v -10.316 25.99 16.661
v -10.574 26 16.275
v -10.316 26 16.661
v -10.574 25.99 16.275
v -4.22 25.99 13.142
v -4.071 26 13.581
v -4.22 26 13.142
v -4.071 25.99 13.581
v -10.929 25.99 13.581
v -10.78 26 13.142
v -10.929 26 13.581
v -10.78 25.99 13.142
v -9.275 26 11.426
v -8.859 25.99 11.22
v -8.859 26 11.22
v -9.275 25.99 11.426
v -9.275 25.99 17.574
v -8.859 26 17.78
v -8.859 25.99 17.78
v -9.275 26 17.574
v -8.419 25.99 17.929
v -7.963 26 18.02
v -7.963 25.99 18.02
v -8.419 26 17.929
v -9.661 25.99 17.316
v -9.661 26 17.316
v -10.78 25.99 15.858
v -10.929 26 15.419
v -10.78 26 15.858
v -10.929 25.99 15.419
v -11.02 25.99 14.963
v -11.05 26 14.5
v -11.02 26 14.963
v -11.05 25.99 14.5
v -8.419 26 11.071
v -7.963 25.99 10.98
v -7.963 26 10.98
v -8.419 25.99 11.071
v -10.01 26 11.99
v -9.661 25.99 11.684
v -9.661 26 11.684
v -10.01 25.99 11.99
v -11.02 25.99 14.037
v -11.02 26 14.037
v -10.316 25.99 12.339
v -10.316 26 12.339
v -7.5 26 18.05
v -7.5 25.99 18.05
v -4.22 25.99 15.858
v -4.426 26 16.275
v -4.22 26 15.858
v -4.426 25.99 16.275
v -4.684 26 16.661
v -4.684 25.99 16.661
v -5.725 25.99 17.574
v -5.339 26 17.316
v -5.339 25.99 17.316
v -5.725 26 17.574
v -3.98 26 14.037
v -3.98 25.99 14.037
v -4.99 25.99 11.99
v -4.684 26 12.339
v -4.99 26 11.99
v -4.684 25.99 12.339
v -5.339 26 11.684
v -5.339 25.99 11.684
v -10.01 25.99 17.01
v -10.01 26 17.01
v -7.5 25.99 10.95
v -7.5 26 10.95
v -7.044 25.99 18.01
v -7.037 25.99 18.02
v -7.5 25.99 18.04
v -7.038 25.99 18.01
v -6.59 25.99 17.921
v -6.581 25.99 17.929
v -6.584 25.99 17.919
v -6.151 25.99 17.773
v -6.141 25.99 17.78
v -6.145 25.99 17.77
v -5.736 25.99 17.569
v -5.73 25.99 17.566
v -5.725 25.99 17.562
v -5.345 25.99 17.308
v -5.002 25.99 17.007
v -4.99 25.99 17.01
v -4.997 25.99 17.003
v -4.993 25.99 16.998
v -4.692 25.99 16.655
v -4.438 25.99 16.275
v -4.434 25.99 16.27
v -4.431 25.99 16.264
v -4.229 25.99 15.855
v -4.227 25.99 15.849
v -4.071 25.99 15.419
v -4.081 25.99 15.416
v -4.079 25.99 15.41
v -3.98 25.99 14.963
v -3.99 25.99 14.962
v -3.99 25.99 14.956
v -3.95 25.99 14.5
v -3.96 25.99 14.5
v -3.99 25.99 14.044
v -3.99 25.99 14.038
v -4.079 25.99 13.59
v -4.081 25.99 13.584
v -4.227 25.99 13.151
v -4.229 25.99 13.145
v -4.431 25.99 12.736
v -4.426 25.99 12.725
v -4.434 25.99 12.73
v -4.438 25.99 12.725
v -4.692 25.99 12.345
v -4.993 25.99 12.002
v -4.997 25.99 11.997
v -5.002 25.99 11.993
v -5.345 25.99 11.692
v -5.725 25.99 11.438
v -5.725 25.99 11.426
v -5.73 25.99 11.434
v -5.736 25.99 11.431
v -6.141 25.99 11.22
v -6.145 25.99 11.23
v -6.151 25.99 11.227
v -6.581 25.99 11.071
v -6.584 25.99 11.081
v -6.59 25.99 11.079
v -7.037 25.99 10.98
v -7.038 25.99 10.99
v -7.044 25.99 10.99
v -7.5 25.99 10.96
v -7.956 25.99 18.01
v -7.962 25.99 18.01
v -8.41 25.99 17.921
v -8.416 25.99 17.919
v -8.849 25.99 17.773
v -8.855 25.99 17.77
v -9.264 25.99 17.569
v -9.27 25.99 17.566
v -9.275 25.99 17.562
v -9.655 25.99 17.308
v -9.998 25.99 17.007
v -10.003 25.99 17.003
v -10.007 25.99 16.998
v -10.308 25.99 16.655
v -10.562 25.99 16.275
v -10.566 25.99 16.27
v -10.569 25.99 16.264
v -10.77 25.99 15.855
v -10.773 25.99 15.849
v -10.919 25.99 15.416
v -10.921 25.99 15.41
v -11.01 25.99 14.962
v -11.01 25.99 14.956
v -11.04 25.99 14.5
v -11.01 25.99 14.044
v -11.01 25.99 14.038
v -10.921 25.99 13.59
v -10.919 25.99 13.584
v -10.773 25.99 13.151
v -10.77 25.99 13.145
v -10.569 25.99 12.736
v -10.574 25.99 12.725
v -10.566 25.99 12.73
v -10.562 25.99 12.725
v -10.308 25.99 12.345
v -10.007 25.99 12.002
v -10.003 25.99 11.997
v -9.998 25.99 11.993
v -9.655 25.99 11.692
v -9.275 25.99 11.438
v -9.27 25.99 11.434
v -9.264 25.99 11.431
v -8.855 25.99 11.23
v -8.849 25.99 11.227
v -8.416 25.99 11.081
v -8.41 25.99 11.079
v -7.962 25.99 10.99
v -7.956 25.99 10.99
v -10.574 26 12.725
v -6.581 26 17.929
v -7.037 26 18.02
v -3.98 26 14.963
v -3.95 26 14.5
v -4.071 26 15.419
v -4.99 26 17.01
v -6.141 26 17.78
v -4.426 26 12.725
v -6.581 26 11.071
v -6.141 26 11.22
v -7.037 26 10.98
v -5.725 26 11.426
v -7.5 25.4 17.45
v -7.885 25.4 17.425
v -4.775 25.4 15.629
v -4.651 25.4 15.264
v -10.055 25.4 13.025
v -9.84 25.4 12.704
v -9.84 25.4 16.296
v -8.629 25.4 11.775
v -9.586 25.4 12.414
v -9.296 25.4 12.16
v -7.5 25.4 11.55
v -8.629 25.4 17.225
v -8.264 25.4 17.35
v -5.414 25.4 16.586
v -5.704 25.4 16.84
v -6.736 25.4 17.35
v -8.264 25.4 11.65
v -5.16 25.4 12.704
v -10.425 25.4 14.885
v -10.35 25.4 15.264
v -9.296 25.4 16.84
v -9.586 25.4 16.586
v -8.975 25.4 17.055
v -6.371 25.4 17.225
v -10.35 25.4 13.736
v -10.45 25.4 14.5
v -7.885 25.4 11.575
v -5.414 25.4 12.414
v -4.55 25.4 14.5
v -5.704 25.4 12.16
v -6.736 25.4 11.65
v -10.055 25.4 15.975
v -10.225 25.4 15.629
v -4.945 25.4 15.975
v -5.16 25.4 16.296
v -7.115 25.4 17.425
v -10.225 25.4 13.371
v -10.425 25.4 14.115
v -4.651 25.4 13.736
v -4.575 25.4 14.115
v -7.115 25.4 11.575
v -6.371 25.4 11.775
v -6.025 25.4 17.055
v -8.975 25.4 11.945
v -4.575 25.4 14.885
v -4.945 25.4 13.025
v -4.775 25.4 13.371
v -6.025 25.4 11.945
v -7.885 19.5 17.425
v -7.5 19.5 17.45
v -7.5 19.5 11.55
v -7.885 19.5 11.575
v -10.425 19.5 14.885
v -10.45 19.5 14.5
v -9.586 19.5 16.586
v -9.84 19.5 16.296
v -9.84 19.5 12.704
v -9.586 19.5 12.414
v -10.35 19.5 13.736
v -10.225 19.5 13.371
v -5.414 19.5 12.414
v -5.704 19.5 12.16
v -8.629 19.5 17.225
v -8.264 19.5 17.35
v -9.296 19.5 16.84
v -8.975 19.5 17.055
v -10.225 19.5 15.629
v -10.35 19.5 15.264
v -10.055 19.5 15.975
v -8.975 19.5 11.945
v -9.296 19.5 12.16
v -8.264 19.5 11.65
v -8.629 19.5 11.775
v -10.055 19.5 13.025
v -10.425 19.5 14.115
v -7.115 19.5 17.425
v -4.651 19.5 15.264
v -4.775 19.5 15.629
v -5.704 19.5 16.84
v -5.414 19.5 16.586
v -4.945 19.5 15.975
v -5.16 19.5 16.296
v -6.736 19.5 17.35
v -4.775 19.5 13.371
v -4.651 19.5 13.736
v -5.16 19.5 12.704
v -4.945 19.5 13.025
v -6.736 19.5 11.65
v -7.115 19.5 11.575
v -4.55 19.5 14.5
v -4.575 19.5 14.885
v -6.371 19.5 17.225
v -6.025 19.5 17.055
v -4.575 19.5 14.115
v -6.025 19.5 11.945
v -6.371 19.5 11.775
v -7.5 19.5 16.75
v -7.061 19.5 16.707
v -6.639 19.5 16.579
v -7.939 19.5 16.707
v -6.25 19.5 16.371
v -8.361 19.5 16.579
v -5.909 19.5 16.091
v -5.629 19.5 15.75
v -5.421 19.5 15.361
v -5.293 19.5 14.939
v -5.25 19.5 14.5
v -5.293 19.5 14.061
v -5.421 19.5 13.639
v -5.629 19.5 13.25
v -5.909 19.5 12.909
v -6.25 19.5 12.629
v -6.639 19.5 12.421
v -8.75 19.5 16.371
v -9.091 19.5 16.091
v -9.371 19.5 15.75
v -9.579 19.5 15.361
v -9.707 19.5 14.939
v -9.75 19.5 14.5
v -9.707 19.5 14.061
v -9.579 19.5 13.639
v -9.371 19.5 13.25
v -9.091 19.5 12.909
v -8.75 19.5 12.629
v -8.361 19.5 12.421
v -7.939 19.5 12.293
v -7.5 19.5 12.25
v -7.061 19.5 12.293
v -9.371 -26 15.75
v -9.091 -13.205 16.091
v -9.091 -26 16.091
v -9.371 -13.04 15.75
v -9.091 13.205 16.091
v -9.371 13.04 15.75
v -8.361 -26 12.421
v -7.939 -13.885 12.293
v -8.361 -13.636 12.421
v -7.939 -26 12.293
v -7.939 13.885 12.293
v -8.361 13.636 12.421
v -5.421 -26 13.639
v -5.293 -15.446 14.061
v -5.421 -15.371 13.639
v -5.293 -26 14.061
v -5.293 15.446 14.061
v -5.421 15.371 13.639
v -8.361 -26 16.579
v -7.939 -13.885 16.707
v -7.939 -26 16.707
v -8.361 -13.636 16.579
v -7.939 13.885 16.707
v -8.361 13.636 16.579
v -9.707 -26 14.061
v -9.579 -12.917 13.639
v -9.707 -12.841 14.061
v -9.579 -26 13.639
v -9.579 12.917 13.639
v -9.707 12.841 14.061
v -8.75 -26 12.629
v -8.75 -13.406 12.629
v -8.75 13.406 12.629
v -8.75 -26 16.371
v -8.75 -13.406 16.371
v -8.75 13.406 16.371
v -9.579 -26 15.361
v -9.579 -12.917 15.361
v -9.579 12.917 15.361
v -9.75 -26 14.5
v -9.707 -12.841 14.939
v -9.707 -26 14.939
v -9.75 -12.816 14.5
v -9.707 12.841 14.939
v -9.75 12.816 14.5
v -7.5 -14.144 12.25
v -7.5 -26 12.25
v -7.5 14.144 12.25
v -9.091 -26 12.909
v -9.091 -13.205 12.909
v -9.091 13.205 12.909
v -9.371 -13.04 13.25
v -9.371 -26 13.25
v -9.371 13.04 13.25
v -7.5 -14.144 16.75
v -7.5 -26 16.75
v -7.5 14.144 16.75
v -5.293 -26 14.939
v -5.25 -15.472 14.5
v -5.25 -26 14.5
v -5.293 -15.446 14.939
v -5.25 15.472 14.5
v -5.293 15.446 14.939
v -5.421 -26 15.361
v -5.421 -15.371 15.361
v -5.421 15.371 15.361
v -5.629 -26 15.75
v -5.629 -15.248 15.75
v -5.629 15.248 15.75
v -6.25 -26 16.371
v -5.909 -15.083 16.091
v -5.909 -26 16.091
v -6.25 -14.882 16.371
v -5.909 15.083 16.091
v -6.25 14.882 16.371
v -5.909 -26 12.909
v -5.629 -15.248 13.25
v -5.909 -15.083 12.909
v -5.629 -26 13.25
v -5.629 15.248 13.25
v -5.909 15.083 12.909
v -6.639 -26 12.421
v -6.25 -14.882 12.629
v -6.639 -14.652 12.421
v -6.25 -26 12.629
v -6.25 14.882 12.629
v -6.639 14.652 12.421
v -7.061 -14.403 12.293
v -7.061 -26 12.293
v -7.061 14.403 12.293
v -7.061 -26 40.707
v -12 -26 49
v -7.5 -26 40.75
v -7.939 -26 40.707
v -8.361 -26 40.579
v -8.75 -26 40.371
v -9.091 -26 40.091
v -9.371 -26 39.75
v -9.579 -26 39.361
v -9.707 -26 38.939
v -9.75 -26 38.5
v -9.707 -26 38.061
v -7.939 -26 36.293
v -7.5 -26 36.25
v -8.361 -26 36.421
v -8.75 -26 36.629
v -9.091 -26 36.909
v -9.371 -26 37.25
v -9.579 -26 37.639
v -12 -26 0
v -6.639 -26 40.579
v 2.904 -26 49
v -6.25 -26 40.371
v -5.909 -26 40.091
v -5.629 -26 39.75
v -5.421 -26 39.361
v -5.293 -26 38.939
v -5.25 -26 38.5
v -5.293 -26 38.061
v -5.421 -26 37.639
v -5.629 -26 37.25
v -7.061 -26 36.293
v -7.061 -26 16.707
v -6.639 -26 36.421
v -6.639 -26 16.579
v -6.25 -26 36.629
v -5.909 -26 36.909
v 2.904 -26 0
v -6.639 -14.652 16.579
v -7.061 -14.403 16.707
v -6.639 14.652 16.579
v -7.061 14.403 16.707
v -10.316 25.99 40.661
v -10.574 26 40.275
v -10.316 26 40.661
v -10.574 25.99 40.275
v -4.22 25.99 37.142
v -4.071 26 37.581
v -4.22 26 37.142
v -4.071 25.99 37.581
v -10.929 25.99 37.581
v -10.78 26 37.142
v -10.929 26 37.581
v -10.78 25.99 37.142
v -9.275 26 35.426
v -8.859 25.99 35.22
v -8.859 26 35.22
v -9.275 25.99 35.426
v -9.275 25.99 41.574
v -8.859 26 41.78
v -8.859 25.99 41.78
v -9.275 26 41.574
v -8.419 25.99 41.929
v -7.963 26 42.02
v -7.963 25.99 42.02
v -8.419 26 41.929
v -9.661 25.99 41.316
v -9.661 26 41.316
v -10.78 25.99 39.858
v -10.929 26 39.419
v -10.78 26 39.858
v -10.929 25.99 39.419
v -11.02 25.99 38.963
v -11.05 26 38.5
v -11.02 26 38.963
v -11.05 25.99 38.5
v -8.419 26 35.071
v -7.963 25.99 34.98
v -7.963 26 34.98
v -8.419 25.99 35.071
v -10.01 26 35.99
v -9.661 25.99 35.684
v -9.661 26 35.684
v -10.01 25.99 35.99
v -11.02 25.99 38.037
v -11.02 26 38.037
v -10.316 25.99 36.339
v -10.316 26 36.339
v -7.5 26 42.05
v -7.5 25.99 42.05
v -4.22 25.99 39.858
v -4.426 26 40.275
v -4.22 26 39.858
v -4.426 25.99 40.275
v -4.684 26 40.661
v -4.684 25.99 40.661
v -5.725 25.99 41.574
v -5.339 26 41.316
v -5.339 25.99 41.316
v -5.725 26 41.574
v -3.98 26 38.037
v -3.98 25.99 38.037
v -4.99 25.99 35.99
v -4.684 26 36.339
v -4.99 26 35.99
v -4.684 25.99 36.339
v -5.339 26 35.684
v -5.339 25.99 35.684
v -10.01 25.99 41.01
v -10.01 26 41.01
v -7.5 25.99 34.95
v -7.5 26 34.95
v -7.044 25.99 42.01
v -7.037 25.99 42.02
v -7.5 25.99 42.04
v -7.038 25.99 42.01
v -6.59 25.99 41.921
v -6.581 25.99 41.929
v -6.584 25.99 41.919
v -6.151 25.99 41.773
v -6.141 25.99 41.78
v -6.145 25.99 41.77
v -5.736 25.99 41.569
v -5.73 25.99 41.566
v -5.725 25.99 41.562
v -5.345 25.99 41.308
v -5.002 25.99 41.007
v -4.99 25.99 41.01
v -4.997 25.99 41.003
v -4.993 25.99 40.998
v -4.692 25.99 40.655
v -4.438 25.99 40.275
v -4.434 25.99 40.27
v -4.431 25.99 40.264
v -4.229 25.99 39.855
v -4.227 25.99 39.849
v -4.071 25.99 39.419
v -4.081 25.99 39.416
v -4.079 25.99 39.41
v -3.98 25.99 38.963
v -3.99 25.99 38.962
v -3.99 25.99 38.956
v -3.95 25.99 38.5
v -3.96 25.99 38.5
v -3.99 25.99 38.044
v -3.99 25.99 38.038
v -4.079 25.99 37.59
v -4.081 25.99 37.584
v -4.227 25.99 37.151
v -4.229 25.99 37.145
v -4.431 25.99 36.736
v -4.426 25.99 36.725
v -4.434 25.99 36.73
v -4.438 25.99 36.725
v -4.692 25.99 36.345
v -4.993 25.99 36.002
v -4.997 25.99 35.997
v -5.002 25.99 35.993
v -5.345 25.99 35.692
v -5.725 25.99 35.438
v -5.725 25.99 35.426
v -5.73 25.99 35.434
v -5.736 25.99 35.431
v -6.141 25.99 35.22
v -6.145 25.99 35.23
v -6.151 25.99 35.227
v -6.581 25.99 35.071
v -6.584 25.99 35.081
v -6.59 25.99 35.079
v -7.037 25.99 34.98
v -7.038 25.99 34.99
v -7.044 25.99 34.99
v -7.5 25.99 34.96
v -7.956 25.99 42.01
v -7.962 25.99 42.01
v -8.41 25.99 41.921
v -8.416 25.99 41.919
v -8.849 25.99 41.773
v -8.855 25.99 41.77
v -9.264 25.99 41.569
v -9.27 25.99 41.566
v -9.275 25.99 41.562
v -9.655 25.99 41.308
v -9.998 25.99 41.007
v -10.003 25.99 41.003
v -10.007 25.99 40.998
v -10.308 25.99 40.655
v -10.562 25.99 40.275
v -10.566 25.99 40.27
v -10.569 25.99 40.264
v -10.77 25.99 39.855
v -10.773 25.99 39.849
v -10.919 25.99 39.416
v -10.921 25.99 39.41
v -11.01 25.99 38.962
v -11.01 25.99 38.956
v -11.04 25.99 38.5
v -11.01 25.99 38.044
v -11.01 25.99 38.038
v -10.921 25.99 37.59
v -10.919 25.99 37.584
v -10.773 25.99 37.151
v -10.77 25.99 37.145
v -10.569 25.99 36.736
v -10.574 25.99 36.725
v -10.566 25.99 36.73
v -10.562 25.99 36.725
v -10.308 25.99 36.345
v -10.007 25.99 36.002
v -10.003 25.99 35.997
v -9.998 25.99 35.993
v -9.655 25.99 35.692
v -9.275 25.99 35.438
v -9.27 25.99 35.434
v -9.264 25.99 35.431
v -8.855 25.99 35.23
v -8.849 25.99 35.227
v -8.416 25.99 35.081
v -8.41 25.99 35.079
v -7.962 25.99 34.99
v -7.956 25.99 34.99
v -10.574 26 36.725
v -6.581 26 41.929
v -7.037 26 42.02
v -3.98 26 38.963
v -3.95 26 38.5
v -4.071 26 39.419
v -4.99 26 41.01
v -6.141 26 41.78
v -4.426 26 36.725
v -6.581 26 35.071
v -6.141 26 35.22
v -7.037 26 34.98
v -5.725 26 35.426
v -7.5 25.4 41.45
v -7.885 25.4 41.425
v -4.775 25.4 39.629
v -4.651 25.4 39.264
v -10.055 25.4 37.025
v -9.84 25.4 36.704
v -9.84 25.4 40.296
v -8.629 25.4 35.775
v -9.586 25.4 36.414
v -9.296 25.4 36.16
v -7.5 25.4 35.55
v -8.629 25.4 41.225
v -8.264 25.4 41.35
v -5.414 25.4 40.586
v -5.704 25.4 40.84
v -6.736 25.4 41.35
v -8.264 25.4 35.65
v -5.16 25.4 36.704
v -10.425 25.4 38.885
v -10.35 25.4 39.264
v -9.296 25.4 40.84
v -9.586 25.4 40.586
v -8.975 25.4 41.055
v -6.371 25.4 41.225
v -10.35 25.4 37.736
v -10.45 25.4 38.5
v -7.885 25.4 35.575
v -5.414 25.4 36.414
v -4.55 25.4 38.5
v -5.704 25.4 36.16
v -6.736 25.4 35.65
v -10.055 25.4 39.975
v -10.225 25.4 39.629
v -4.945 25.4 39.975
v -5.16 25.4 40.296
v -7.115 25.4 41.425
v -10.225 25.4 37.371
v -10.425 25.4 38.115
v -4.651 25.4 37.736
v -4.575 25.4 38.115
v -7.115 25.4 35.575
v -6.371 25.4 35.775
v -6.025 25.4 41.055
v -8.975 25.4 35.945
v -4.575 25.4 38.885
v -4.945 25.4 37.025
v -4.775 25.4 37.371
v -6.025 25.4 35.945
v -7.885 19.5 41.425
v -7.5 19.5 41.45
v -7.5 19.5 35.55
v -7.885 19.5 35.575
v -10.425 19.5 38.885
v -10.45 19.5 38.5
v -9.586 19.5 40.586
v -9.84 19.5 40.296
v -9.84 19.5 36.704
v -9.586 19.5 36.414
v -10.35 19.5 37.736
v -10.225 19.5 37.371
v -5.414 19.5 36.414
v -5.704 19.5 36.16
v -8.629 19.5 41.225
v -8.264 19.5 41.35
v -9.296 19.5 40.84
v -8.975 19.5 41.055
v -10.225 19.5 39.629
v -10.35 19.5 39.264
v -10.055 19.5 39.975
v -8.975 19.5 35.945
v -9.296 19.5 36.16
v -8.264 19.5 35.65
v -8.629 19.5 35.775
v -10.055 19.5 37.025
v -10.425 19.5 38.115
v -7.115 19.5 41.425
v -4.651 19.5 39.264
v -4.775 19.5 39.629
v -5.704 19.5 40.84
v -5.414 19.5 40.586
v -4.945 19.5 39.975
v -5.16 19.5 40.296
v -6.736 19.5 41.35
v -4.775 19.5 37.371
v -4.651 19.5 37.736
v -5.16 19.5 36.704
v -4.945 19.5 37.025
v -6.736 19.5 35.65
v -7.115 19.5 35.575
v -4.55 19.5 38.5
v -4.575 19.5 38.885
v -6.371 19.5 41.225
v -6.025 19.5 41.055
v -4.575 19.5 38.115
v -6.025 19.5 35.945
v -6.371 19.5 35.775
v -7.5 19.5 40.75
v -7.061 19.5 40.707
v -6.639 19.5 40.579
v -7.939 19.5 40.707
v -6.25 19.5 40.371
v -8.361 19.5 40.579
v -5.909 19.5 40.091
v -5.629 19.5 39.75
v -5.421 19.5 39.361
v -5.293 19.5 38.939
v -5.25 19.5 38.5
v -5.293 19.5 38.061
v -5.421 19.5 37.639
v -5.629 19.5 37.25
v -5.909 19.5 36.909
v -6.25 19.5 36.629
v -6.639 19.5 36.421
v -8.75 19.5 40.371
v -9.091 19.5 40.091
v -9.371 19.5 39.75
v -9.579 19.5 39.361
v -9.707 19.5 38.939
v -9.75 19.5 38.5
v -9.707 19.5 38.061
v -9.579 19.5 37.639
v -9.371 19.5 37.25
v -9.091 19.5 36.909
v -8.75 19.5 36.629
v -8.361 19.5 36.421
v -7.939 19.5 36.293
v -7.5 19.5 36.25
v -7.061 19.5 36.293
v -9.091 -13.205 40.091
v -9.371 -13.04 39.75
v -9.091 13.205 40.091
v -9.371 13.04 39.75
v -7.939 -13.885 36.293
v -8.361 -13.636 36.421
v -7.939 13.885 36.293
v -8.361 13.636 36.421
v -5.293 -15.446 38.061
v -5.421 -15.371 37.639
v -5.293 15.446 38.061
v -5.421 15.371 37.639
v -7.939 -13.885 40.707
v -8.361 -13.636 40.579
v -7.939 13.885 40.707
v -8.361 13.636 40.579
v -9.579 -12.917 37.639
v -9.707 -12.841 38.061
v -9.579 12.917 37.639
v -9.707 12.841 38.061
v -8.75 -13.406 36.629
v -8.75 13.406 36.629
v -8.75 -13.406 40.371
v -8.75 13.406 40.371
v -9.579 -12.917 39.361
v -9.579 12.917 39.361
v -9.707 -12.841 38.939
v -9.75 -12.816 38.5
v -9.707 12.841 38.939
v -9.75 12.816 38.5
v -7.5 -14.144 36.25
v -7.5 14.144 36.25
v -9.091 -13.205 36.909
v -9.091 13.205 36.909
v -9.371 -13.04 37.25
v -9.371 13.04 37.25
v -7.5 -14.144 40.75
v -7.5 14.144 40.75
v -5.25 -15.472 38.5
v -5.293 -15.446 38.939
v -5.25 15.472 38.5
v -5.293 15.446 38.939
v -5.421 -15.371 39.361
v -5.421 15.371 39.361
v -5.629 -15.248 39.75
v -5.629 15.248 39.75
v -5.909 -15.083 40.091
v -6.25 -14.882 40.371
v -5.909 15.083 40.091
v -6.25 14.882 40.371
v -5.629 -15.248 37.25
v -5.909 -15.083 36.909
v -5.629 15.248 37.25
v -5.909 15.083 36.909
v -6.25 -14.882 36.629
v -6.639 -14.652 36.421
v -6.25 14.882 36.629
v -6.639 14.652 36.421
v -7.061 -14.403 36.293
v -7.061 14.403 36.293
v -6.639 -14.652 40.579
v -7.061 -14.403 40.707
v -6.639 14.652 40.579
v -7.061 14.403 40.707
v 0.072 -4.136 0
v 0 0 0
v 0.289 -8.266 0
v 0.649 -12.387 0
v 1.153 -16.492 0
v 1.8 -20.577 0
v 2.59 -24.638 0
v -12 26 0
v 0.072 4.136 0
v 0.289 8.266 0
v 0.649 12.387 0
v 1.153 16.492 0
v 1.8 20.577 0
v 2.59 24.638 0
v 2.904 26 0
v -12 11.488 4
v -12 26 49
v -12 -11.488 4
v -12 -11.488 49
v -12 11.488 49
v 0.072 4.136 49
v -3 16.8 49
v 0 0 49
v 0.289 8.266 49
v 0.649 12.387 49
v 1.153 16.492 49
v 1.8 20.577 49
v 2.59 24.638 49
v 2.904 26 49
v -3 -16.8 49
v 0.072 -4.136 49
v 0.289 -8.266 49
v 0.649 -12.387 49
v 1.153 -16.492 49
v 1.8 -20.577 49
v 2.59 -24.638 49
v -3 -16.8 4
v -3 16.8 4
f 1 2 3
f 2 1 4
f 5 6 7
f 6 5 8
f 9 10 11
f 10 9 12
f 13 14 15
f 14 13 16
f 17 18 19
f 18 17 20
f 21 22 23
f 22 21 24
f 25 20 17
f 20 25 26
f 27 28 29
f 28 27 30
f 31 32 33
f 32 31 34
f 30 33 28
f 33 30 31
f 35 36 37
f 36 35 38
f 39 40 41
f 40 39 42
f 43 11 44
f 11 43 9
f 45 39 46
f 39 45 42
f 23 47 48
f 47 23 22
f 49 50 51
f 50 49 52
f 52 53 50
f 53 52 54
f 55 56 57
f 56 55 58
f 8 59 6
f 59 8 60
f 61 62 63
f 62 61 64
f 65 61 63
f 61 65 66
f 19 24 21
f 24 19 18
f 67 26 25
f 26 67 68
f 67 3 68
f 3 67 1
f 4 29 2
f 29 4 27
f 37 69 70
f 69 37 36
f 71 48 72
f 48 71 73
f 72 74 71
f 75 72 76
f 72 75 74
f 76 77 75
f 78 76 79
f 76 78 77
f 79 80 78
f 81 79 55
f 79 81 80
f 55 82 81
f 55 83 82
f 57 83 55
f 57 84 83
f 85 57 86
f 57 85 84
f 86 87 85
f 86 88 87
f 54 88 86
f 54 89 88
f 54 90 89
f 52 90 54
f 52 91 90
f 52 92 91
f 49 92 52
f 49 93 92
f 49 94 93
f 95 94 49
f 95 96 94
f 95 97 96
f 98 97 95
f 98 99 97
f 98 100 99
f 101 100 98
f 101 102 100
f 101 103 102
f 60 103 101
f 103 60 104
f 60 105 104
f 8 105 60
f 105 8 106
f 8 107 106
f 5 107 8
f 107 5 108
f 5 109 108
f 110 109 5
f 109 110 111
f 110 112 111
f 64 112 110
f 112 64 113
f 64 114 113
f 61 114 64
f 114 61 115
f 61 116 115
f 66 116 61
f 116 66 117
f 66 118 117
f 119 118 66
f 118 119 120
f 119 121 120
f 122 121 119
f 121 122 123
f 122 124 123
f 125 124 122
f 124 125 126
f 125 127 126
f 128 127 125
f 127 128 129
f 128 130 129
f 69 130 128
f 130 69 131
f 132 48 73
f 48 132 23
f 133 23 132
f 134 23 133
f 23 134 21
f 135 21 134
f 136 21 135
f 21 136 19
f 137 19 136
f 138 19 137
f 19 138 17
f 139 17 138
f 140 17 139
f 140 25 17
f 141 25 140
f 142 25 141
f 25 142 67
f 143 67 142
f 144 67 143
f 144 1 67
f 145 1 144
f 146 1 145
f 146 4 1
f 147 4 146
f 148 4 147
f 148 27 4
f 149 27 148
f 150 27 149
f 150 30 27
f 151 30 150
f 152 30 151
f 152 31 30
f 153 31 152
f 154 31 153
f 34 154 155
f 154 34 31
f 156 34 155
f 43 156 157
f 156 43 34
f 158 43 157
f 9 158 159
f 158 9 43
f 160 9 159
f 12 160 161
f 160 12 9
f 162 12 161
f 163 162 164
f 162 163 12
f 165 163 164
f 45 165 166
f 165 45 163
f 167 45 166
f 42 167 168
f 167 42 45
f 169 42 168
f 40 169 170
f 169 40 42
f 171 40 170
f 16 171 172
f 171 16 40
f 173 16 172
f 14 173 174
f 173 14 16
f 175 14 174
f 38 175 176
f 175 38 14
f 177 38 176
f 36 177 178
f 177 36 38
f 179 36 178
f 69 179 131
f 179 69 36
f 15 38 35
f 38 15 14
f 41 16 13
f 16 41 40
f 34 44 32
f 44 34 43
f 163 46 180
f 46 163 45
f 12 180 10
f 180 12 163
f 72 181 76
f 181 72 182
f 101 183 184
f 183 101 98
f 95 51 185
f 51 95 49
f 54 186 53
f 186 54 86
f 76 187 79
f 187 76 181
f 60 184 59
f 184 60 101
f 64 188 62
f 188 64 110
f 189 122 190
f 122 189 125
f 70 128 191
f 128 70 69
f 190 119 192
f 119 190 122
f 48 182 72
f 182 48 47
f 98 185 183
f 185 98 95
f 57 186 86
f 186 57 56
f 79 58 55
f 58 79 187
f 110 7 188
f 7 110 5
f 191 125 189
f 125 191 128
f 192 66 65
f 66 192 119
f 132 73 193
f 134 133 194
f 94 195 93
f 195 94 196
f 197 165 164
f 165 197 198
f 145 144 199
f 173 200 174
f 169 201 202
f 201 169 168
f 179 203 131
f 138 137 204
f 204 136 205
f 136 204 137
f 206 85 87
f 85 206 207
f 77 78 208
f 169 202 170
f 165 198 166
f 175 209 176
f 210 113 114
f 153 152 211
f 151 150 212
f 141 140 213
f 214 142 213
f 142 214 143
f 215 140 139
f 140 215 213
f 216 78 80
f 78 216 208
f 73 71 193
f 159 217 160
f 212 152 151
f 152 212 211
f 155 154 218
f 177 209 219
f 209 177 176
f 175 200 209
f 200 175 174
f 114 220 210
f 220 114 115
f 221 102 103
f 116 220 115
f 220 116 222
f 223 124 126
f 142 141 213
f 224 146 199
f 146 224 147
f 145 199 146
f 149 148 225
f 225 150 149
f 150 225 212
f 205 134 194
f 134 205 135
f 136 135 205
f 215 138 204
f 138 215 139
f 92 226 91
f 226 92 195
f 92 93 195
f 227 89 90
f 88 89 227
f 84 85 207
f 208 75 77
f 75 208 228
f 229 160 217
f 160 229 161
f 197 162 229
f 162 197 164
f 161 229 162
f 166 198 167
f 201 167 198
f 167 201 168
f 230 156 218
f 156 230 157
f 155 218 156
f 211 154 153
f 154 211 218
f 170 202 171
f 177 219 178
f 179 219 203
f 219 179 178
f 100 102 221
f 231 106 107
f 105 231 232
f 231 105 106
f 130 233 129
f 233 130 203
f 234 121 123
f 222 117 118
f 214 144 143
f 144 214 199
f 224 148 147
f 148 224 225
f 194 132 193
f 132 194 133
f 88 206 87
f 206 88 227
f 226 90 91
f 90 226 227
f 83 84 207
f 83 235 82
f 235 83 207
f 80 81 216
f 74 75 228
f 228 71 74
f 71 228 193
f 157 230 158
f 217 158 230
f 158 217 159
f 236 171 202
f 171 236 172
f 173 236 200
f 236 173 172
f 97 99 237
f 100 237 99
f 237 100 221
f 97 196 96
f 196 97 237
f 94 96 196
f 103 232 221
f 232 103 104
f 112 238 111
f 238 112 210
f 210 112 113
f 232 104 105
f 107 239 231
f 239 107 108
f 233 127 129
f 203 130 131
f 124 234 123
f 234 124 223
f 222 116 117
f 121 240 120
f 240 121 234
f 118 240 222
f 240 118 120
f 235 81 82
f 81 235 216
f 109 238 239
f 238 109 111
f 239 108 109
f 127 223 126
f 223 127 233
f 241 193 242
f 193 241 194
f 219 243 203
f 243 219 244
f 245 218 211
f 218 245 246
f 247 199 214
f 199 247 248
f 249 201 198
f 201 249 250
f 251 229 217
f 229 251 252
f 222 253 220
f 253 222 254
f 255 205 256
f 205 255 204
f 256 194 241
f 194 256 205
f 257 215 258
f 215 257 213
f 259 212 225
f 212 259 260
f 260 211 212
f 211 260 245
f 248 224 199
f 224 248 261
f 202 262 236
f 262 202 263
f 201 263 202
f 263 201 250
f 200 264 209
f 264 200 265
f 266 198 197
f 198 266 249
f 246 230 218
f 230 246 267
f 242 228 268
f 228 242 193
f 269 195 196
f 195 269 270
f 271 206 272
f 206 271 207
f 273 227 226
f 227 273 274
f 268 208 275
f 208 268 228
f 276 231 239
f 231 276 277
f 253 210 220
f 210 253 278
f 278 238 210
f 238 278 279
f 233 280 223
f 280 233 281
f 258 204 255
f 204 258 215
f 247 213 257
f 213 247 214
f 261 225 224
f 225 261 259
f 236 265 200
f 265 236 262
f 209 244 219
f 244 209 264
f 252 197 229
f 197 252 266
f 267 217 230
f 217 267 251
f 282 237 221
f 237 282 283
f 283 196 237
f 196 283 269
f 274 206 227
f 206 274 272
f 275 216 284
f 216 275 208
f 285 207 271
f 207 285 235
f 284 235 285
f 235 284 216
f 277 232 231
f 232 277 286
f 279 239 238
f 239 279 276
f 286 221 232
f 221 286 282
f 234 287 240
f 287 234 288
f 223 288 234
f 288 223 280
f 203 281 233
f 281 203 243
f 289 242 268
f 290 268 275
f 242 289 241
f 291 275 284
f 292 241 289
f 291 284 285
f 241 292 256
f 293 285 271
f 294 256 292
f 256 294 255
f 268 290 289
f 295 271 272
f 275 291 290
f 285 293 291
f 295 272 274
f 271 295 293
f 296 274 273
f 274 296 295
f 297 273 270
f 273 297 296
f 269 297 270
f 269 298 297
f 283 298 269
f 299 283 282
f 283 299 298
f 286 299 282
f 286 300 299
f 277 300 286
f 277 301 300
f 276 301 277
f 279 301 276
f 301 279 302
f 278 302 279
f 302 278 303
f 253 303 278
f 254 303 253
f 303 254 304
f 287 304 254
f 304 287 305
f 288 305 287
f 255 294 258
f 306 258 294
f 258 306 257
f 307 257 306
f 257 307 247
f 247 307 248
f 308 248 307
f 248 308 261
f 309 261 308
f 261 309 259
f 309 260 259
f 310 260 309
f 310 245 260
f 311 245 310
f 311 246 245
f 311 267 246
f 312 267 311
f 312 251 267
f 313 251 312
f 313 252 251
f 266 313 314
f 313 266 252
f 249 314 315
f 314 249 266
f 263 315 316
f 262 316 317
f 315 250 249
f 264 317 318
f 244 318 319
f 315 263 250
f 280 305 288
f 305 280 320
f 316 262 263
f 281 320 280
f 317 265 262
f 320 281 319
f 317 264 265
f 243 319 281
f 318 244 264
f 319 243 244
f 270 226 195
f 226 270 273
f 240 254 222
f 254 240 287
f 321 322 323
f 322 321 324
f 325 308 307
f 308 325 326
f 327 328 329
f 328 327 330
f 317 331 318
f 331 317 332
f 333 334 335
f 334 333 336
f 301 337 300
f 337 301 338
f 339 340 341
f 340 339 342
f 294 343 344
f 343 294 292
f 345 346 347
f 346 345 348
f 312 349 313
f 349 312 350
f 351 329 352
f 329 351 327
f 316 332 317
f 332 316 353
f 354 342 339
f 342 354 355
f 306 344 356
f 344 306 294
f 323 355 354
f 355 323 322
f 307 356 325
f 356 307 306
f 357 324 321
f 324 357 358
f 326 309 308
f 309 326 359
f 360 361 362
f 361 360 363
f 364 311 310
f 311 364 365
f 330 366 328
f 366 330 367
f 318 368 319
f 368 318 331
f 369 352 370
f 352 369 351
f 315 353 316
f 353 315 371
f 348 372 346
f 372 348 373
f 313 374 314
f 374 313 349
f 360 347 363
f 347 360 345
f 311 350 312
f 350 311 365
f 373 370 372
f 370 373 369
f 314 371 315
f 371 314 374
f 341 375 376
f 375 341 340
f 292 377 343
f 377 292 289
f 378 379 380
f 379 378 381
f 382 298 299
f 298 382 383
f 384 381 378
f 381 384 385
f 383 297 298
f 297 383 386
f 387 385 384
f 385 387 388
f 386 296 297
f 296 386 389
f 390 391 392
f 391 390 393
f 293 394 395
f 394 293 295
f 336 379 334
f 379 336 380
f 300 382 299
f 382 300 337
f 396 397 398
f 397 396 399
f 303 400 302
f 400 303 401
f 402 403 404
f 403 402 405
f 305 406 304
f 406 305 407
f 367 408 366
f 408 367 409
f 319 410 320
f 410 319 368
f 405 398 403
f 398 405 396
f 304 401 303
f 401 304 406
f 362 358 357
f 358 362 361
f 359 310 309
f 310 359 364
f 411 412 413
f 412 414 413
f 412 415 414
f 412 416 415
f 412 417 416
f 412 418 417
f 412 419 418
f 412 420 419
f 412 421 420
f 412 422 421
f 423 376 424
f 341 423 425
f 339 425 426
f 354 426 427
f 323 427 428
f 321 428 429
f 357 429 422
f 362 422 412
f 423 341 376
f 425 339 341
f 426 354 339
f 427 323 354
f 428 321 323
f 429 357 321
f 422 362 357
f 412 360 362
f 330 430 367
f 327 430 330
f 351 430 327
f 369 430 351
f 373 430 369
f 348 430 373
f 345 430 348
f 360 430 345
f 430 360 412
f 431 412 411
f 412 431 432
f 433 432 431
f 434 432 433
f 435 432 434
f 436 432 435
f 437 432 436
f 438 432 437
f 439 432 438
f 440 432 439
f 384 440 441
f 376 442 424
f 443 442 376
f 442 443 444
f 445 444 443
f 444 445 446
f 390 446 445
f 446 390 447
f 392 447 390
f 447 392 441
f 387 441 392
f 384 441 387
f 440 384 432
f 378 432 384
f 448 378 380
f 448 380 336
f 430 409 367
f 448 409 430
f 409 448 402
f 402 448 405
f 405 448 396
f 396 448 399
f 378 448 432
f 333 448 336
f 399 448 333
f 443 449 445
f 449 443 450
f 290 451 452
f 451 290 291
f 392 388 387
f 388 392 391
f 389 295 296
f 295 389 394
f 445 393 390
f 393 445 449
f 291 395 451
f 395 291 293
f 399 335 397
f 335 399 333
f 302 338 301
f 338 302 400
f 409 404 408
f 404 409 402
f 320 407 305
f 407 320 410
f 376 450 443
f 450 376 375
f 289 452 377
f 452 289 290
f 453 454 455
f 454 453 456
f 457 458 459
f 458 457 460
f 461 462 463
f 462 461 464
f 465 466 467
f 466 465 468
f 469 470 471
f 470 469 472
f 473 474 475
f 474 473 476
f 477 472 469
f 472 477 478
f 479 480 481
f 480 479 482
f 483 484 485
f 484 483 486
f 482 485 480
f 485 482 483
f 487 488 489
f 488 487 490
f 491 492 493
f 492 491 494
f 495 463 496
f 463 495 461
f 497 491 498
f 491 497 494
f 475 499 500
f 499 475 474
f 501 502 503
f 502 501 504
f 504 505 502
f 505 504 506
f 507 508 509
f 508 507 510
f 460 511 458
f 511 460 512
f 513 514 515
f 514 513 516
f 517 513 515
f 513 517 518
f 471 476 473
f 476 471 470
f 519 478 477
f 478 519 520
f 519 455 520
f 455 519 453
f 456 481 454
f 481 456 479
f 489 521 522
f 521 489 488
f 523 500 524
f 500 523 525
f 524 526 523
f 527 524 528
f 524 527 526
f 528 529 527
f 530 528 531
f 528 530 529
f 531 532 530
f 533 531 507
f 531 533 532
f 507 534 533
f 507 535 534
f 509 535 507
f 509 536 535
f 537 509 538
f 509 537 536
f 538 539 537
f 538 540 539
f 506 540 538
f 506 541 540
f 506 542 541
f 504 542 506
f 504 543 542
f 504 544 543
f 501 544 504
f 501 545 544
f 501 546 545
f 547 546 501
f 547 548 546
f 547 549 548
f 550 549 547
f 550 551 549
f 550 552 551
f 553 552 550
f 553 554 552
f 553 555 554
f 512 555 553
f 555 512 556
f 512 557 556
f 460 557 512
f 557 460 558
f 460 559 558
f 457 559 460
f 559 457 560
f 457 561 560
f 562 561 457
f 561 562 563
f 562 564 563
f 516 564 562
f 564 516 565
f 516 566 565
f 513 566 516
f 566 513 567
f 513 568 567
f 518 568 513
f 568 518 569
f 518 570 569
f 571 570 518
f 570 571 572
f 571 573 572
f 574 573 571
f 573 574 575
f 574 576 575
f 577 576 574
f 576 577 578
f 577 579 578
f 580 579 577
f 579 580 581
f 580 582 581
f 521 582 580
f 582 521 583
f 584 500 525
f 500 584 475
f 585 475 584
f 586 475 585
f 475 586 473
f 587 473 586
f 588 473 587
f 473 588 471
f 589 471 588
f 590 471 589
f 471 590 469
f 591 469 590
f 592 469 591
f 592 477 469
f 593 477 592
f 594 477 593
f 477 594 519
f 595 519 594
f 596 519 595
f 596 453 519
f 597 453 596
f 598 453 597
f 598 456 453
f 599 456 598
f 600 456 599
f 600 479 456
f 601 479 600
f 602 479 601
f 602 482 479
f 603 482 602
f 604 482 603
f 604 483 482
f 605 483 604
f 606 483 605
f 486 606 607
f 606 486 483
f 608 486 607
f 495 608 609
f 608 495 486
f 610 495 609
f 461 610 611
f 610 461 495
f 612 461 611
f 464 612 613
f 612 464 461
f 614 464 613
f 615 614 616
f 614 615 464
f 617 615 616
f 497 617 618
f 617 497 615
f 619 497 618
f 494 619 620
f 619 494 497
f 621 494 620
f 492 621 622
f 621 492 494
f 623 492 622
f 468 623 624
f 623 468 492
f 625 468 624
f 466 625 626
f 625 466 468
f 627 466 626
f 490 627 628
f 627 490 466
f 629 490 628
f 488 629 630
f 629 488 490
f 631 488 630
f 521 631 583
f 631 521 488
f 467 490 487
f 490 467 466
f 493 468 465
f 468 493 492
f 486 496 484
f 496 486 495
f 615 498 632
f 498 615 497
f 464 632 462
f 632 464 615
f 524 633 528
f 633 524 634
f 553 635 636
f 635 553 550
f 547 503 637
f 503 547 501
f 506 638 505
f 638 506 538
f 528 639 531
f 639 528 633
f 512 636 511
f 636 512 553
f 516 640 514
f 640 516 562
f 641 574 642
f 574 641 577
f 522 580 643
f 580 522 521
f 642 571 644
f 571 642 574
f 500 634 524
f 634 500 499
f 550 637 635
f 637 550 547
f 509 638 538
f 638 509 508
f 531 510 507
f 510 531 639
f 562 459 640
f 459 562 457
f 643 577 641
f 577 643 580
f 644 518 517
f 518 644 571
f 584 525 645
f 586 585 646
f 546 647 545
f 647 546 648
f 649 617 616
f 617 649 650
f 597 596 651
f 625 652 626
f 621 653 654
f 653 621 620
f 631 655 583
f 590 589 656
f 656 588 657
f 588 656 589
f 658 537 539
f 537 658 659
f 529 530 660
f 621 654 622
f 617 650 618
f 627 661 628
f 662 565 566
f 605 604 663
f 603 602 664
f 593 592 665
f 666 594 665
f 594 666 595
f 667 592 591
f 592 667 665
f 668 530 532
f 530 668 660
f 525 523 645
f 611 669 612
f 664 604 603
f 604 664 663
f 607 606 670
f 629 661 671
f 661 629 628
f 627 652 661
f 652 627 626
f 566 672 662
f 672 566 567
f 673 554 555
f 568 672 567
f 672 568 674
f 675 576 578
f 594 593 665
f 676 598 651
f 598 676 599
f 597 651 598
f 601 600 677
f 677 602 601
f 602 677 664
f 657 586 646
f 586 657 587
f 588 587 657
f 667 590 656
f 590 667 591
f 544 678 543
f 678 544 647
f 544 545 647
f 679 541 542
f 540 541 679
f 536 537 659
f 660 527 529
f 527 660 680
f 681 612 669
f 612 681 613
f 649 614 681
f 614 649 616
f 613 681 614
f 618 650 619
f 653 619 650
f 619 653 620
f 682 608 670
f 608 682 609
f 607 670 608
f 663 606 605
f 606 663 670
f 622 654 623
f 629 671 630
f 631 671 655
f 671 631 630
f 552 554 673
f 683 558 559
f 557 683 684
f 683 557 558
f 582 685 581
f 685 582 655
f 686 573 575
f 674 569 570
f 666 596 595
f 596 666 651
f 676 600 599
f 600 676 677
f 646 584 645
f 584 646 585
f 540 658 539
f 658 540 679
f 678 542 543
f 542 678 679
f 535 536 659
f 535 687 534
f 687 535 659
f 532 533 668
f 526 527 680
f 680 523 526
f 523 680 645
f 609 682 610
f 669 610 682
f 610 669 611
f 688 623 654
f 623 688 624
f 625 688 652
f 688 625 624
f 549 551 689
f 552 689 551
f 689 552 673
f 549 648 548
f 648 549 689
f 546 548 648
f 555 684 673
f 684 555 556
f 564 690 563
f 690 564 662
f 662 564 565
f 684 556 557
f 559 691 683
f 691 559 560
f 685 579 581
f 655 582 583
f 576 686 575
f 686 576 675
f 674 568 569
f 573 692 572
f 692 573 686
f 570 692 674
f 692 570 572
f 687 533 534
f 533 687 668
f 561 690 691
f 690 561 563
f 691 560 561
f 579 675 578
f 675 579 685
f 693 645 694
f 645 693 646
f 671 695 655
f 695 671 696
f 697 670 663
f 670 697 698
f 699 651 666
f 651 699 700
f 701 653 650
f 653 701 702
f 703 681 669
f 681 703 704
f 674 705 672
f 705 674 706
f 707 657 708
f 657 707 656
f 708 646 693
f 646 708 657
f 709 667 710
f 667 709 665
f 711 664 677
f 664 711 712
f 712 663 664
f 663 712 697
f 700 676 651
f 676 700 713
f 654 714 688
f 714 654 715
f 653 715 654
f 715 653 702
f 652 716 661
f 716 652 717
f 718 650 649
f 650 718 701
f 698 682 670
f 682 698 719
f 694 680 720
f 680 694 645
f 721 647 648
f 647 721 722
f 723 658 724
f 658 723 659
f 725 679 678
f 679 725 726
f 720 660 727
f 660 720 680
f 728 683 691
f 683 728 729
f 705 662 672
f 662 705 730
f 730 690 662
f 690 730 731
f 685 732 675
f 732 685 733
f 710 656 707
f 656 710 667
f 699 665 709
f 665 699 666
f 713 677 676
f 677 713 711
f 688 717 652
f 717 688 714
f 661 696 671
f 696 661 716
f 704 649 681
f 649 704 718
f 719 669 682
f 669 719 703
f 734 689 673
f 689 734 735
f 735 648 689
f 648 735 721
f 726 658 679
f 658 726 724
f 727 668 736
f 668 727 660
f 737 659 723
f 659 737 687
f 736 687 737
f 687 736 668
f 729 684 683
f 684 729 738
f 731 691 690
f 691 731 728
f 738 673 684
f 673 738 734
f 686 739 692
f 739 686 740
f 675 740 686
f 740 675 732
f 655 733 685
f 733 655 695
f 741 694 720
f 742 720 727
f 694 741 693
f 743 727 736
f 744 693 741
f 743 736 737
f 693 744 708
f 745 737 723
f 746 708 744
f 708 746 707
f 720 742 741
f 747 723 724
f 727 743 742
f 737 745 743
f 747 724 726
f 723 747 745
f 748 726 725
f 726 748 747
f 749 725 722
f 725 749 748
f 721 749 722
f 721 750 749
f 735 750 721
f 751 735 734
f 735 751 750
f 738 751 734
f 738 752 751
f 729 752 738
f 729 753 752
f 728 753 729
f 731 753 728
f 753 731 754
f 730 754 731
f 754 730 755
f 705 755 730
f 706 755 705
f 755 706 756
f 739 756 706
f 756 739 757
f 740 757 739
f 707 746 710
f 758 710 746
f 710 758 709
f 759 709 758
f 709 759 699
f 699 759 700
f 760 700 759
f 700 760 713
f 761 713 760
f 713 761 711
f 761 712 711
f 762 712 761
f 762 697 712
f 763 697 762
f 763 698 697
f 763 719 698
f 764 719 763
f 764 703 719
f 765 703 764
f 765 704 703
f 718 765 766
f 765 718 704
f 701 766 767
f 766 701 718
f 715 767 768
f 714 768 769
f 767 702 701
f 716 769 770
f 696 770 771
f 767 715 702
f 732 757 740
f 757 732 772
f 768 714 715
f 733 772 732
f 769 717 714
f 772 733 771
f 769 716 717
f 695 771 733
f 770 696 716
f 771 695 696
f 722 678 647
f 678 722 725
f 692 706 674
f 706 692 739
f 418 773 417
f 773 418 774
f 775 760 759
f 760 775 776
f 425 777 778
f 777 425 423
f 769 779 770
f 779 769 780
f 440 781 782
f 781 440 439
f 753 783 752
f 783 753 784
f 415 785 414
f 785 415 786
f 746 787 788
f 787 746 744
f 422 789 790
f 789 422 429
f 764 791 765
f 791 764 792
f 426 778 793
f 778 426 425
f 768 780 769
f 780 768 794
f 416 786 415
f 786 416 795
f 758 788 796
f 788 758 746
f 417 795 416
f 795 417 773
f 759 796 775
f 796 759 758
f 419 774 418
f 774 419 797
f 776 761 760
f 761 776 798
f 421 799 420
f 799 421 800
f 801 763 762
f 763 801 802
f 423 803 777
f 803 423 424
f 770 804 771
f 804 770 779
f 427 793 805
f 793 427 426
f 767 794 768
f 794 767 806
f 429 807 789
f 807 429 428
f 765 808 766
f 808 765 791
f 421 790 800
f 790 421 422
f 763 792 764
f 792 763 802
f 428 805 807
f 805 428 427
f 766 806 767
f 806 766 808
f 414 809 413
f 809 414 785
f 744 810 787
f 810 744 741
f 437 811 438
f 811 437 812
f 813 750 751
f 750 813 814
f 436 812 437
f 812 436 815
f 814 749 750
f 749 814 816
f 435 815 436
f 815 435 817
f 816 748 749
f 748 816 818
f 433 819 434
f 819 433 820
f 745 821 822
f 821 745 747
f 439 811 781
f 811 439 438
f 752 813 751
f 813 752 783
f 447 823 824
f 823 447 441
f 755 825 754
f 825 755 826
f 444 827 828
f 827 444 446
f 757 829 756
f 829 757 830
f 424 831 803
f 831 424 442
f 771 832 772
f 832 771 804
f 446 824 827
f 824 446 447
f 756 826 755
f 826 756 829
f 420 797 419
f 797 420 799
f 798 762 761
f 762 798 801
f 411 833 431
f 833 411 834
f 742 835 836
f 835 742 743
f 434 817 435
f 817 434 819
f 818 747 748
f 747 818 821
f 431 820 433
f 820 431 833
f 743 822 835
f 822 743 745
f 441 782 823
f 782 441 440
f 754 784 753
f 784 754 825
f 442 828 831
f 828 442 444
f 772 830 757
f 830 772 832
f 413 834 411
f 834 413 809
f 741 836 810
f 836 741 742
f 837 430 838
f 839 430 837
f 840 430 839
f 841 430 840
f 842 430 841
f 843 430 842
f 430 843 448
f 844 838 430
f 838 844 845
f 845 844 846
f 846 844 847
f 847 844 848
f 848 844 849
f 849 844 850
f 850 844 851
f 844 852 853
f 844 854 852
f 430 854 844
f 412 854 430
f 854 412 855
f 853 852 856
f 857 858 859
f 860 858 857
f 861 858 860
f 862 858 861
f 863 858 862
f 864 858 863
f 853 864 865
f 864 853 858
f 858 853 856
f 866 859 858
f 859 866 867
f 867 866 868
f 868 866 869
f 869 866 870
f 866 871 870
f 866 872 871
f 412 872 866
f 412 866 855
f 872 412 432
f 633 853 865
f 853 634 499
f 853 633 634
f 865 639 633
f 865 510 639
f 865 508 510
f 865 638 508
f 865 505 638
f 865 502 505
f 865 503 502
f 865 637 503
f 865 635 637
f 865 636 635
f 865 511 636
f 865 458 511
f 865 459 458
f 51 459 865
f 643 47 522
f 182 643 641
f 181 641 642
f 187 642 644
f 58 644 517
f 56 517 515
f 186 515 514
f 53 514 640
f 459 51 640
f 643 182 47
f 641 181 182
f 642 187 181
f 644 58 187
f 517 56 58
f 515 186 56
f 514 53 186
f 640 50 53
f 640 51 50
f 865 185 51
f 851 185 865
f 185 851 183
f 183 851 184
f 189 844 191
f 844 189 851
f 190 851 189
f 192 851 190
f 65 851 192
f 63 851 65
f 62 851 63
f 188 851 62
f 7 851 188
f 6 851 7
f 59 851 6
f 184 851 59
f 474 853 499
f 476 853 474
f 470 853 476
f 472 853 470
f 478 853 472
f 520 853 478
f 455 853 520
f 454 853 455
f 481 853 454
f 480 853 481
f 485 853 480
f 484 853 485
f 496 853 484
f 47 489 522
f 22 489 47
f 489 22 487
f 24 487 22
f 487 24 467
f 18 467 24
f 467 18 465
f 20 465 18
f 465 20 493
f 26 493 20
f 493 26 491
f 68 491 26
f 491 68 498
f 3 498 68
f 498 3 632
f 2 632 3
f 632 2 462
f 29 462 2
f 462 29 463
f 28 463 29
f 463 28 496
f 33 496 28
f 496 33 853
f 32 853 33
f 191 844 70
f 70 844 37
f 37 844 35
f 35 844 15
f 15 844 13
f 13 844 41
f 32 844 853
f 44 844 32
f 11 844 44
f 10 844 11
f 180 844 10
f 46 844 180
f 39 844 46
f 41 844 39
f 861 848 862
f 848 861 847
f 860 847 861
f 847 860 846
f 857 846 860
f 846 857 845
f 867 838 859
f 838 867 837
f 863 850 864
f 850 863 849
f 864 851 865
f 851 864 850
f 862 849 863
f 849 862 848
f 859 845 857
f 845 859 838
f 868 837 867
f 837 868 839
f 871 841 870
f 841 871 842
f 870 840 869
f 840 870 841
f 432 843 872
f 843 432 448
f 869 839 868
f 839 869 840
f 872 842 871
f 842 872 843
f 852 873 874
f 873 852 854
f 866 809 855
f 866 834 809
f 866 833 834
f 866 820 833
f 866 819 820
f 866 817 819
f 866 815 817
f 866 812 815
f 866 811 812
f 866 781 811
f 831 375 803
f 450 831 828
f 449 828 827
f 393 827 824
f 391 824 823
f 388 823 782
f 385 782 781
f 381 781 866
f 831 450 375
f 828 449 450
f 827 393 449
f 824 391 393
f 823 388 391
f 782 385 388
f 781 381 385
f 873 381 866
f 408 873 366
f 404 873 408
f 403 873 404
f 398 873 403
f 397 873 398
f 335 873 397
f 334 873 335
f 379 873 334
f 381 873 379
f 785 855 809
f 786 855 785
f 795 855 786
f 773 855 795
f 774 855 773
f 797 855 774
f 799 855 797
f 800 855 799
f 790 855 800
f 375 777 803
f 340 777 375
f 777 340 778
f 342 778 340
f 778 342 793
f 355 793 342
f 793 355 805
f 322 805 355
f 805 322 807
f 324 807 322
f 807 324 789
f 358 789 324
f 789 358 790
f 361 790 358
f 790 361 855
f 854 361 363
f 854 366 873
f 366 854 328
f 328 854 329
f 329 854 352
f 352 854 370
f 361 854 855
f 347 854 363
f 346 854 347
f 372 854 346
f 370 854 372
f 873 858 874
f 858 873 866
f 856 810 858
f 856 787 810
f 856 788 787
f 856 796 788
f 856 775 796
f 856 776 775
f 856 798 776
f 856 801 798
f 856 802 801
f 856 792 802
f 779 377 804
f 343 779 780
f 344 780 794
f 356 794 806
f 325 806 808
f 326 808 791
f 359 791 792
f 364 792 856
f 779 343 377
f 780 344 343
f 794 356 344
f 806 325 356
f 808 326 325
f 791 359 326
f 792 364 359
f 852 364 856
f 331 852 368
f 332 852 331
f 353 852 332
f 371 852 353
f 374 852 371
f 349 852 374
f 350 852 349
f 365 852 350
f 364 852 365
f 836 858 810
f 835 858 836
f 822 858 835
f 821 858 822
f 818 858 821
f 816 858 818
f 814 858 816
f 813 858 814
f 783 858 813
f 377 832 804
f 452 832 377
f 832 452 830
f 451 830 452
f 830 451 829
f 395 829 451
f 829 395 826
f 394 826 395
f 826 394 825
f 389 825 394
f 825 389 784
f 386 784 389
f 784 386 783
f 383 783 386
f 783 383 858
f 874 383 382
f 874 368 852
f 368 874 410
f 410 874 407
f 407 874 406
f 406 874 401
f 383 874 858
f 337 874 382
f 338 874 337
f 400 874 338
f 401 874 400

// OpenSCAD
// Copyright (C) 2026 Arun Venkataswamy
//
// This file is part of PushNav.
//
// PushNav is free software: you can redistribute it and/or modify it
// under the terms of the GNU General Public License as published by
// the Free Software Foundation, either version 3 of the License, or
// (at your option) any later version.
//
// PushNav is distributed in the hope that it will be useful, but
// WITHOUT ANY WARRANTY; without even the implied warranty of
// MERCHANTABILITY or FITNESS FOR A PARTICULAR PURPOSE. See the GNU
// General Public License for more details.
//
// You should have received a copy of the GNU General Public License
// along with PushNav. If not, see <https://www.gnu.org/licenses/>.

// ============================================================
// PushNav Tube Shoe — a second finder shoe for the telescope tube
// ============================================================
//
// For scopes whose only finder shoe is taken by the finder. A female
// dovetail shoe, made to take the dovetail rail of the camera mounts
// (housing_v3 low mount, housing_v4 Pi mount), with its base curved to
// the tube. It sticks on with 3M VHB foam tape — no drilling. The foam
// takes up a millimetre or two of curvature mismatch, so the tube's
// diameter only needs to be roughly right.
//
// The rail slides in from the open end until it hits the stop, so the
// camera goes back to the same place each night. Two M4 thumbscrews in
// the side wall press it against the far flank.
//
// Default tube: Apertura AD8. MEASURE YOUR TUBE: wrap a strip of paper
// round it, mark the overlap, and set tube_od = circumference / π.
//
// HARDWARE:
//   2 × M4 × 6 heat-set inserts (5.9 mm knurl — the same as the
//   camera housing's), 2 × M4 × 16 thumbscrews (nylon-tipped if you can
//   get them), and a strip of 3M VHB tape (e.g. 5952, 1.1 mm) about
//   50 × 45 mm. Clean the tube with isopropyl alcohol first, press hard
//   for 30 s, and leave it a day before loading it.
//
// Where to stick it: along the tube (the open end toward the
// eyepiece end, so the camera points where the tube points), somewhere
// the camera's view isn't blocked by the focuser or finder and it
// doesn't foul the rocker box when the tube is pointed at the zenith.
//
// PRINTING: stands on its stop end (add a 5 mm brim), so every face is a vertical wall —
// no supports. PETG preferred (PLA can creep in a hot car).

$fn = 180;

// ============================================================
// DIMENSIONS — all values in millimeters
// ============================================================

/* Telescope tube */
tube_od               = 237;     // Apertura AD8: measured 744 mm round / π

/* Camera mount rail (housing_v3.scad: dovetail_*) */
rail_bottom_width     = 33;      // wide face, sits on the shoe floor
rail_top_width        = 20;      // narrow face, at rail_height
rail_height           = 11;
rail_length           = 39;

/* Shoe */
fit_clearance         = 0.3;     // per side, horizontally
channel_depth         = 9;       // shoe walls stop below the rail's narrow face
floor_thickness       = 3;       // at the centre line (more toward the edges)
shoe_width            = 52;
channel_length        = 45;      // rail_length + room to slide
stop_thickness        = 4;       // closed end the rail stops against

/* Thumbscrews — M4 heat-set inserts in the +Y wall */
insert_hole_dia       = 5.9;
insert_lead_in        = 0.6;
insert_hole_depth     = 6.5;
screw_clear_dia       = 4.5;
screw_x               = [-12, 12];   // from the channel's centre

// ============================================================
// DERIVED
// ============================================================

tube_r      = tube_od / 2;
shoe_length = channel_length + stop_thickness;
top_z       = floor_thickness + channel_depth;
edge_sag    = tube_r - sqrt(tube_r * tube_r - (shoe_width / 2) * (shoe_width / 2));
screw_z     = floor_thickness + channel_depth / 2;

function rail_half(d) = rail_bottom_width / 2
                      - (rail_bottom_width - rail_top_width) / 2 * d / rail_height;
channel_half_bottom = rail_half(0) + fit_clearance;
channel_half_top    = rail_half(channel_depth) + fit_clearance;
wall_at_screw       = shoe_width / 2 - (rail_half(channel_depth / 2) + fit_clearance);

assert(channel_depth < rail_height - 1, "walls would reach the mount's bridge");
assert(wall_at_screw > insert_hole_depth + 2, "side wall too thin for the inserts");
assert(screw_z + insert_hole_dia / 2 + 1 <= top_z, "insert too close to the top");
assert(channel_length >= rail_length + 2, "channel shorter than the rail");

// ============================================================
// MODEL — X along the tube, Y across it, Z away from the tube.
// The tube's top line is at Z = 0; the stop is at X = 0.
// ============================================================

module tube_shoe() {
    difference() {
        // Body: a block, less the tube
        translate([0, -shoe_width / 2, -edge_sag - 1])
            cube([shoe_length, shoe_width, top_z + edge_sag + 1]);

        translate([-1, 0, -tube_r])
            rotate([0, 90, 0])
                cylinder(r = tube_r, h = shoe_length + 2);

        // Dovetail channel, open at X = shoe_length
        translate([stop_thickness, 0, 0])
            rotate([90, 0, 90])
                linear_extrude(channel_length + 1)
                    polygon([
                        [-channel_half_bottom, floor_thickness],
                        [ channel_half_bottom, floor_thickness],
                        [ channel_half_top,    top_z + 0.01],
                        [ channel_half_top,    top_z + 1],
                        [-channel_half_top,    top_z + 1],
                        [-channel_half_top,    top_z + 0.01],
                    ]);

        // Thumbscrew inserts, from the +Y face
        for (sx = screw_x)
            translate([stop_thickness + channel_length / 2 + sx,
                       shoe_width / 2, screw_z])
                rotate([90, 0, 0]) {
                    translate([0, 0, -1])
                        cylinder(d = insert_hole_dia + 2 * insert_lead_in, h = 1.01, $fn = 48);
                    cylinder(d1 = insert_hole_dia + 2 * insert_lead_in,
                             d2 = insert_hole_dia, h = insert_lead_in, $fn = 48);
                    cylinder(d = insert_hole_dia, h = insert_hole_depth, $fn = 48);
                    cylinder(d = screw_clear_dia, h = shoe_width, $fn = 32);
                }
    }
}

// Print orientation: standing on the stop end
rotate([0, -90, 0]) tube_shoe();     // X (along the tube) becomes Z; stop end at Z = 0
